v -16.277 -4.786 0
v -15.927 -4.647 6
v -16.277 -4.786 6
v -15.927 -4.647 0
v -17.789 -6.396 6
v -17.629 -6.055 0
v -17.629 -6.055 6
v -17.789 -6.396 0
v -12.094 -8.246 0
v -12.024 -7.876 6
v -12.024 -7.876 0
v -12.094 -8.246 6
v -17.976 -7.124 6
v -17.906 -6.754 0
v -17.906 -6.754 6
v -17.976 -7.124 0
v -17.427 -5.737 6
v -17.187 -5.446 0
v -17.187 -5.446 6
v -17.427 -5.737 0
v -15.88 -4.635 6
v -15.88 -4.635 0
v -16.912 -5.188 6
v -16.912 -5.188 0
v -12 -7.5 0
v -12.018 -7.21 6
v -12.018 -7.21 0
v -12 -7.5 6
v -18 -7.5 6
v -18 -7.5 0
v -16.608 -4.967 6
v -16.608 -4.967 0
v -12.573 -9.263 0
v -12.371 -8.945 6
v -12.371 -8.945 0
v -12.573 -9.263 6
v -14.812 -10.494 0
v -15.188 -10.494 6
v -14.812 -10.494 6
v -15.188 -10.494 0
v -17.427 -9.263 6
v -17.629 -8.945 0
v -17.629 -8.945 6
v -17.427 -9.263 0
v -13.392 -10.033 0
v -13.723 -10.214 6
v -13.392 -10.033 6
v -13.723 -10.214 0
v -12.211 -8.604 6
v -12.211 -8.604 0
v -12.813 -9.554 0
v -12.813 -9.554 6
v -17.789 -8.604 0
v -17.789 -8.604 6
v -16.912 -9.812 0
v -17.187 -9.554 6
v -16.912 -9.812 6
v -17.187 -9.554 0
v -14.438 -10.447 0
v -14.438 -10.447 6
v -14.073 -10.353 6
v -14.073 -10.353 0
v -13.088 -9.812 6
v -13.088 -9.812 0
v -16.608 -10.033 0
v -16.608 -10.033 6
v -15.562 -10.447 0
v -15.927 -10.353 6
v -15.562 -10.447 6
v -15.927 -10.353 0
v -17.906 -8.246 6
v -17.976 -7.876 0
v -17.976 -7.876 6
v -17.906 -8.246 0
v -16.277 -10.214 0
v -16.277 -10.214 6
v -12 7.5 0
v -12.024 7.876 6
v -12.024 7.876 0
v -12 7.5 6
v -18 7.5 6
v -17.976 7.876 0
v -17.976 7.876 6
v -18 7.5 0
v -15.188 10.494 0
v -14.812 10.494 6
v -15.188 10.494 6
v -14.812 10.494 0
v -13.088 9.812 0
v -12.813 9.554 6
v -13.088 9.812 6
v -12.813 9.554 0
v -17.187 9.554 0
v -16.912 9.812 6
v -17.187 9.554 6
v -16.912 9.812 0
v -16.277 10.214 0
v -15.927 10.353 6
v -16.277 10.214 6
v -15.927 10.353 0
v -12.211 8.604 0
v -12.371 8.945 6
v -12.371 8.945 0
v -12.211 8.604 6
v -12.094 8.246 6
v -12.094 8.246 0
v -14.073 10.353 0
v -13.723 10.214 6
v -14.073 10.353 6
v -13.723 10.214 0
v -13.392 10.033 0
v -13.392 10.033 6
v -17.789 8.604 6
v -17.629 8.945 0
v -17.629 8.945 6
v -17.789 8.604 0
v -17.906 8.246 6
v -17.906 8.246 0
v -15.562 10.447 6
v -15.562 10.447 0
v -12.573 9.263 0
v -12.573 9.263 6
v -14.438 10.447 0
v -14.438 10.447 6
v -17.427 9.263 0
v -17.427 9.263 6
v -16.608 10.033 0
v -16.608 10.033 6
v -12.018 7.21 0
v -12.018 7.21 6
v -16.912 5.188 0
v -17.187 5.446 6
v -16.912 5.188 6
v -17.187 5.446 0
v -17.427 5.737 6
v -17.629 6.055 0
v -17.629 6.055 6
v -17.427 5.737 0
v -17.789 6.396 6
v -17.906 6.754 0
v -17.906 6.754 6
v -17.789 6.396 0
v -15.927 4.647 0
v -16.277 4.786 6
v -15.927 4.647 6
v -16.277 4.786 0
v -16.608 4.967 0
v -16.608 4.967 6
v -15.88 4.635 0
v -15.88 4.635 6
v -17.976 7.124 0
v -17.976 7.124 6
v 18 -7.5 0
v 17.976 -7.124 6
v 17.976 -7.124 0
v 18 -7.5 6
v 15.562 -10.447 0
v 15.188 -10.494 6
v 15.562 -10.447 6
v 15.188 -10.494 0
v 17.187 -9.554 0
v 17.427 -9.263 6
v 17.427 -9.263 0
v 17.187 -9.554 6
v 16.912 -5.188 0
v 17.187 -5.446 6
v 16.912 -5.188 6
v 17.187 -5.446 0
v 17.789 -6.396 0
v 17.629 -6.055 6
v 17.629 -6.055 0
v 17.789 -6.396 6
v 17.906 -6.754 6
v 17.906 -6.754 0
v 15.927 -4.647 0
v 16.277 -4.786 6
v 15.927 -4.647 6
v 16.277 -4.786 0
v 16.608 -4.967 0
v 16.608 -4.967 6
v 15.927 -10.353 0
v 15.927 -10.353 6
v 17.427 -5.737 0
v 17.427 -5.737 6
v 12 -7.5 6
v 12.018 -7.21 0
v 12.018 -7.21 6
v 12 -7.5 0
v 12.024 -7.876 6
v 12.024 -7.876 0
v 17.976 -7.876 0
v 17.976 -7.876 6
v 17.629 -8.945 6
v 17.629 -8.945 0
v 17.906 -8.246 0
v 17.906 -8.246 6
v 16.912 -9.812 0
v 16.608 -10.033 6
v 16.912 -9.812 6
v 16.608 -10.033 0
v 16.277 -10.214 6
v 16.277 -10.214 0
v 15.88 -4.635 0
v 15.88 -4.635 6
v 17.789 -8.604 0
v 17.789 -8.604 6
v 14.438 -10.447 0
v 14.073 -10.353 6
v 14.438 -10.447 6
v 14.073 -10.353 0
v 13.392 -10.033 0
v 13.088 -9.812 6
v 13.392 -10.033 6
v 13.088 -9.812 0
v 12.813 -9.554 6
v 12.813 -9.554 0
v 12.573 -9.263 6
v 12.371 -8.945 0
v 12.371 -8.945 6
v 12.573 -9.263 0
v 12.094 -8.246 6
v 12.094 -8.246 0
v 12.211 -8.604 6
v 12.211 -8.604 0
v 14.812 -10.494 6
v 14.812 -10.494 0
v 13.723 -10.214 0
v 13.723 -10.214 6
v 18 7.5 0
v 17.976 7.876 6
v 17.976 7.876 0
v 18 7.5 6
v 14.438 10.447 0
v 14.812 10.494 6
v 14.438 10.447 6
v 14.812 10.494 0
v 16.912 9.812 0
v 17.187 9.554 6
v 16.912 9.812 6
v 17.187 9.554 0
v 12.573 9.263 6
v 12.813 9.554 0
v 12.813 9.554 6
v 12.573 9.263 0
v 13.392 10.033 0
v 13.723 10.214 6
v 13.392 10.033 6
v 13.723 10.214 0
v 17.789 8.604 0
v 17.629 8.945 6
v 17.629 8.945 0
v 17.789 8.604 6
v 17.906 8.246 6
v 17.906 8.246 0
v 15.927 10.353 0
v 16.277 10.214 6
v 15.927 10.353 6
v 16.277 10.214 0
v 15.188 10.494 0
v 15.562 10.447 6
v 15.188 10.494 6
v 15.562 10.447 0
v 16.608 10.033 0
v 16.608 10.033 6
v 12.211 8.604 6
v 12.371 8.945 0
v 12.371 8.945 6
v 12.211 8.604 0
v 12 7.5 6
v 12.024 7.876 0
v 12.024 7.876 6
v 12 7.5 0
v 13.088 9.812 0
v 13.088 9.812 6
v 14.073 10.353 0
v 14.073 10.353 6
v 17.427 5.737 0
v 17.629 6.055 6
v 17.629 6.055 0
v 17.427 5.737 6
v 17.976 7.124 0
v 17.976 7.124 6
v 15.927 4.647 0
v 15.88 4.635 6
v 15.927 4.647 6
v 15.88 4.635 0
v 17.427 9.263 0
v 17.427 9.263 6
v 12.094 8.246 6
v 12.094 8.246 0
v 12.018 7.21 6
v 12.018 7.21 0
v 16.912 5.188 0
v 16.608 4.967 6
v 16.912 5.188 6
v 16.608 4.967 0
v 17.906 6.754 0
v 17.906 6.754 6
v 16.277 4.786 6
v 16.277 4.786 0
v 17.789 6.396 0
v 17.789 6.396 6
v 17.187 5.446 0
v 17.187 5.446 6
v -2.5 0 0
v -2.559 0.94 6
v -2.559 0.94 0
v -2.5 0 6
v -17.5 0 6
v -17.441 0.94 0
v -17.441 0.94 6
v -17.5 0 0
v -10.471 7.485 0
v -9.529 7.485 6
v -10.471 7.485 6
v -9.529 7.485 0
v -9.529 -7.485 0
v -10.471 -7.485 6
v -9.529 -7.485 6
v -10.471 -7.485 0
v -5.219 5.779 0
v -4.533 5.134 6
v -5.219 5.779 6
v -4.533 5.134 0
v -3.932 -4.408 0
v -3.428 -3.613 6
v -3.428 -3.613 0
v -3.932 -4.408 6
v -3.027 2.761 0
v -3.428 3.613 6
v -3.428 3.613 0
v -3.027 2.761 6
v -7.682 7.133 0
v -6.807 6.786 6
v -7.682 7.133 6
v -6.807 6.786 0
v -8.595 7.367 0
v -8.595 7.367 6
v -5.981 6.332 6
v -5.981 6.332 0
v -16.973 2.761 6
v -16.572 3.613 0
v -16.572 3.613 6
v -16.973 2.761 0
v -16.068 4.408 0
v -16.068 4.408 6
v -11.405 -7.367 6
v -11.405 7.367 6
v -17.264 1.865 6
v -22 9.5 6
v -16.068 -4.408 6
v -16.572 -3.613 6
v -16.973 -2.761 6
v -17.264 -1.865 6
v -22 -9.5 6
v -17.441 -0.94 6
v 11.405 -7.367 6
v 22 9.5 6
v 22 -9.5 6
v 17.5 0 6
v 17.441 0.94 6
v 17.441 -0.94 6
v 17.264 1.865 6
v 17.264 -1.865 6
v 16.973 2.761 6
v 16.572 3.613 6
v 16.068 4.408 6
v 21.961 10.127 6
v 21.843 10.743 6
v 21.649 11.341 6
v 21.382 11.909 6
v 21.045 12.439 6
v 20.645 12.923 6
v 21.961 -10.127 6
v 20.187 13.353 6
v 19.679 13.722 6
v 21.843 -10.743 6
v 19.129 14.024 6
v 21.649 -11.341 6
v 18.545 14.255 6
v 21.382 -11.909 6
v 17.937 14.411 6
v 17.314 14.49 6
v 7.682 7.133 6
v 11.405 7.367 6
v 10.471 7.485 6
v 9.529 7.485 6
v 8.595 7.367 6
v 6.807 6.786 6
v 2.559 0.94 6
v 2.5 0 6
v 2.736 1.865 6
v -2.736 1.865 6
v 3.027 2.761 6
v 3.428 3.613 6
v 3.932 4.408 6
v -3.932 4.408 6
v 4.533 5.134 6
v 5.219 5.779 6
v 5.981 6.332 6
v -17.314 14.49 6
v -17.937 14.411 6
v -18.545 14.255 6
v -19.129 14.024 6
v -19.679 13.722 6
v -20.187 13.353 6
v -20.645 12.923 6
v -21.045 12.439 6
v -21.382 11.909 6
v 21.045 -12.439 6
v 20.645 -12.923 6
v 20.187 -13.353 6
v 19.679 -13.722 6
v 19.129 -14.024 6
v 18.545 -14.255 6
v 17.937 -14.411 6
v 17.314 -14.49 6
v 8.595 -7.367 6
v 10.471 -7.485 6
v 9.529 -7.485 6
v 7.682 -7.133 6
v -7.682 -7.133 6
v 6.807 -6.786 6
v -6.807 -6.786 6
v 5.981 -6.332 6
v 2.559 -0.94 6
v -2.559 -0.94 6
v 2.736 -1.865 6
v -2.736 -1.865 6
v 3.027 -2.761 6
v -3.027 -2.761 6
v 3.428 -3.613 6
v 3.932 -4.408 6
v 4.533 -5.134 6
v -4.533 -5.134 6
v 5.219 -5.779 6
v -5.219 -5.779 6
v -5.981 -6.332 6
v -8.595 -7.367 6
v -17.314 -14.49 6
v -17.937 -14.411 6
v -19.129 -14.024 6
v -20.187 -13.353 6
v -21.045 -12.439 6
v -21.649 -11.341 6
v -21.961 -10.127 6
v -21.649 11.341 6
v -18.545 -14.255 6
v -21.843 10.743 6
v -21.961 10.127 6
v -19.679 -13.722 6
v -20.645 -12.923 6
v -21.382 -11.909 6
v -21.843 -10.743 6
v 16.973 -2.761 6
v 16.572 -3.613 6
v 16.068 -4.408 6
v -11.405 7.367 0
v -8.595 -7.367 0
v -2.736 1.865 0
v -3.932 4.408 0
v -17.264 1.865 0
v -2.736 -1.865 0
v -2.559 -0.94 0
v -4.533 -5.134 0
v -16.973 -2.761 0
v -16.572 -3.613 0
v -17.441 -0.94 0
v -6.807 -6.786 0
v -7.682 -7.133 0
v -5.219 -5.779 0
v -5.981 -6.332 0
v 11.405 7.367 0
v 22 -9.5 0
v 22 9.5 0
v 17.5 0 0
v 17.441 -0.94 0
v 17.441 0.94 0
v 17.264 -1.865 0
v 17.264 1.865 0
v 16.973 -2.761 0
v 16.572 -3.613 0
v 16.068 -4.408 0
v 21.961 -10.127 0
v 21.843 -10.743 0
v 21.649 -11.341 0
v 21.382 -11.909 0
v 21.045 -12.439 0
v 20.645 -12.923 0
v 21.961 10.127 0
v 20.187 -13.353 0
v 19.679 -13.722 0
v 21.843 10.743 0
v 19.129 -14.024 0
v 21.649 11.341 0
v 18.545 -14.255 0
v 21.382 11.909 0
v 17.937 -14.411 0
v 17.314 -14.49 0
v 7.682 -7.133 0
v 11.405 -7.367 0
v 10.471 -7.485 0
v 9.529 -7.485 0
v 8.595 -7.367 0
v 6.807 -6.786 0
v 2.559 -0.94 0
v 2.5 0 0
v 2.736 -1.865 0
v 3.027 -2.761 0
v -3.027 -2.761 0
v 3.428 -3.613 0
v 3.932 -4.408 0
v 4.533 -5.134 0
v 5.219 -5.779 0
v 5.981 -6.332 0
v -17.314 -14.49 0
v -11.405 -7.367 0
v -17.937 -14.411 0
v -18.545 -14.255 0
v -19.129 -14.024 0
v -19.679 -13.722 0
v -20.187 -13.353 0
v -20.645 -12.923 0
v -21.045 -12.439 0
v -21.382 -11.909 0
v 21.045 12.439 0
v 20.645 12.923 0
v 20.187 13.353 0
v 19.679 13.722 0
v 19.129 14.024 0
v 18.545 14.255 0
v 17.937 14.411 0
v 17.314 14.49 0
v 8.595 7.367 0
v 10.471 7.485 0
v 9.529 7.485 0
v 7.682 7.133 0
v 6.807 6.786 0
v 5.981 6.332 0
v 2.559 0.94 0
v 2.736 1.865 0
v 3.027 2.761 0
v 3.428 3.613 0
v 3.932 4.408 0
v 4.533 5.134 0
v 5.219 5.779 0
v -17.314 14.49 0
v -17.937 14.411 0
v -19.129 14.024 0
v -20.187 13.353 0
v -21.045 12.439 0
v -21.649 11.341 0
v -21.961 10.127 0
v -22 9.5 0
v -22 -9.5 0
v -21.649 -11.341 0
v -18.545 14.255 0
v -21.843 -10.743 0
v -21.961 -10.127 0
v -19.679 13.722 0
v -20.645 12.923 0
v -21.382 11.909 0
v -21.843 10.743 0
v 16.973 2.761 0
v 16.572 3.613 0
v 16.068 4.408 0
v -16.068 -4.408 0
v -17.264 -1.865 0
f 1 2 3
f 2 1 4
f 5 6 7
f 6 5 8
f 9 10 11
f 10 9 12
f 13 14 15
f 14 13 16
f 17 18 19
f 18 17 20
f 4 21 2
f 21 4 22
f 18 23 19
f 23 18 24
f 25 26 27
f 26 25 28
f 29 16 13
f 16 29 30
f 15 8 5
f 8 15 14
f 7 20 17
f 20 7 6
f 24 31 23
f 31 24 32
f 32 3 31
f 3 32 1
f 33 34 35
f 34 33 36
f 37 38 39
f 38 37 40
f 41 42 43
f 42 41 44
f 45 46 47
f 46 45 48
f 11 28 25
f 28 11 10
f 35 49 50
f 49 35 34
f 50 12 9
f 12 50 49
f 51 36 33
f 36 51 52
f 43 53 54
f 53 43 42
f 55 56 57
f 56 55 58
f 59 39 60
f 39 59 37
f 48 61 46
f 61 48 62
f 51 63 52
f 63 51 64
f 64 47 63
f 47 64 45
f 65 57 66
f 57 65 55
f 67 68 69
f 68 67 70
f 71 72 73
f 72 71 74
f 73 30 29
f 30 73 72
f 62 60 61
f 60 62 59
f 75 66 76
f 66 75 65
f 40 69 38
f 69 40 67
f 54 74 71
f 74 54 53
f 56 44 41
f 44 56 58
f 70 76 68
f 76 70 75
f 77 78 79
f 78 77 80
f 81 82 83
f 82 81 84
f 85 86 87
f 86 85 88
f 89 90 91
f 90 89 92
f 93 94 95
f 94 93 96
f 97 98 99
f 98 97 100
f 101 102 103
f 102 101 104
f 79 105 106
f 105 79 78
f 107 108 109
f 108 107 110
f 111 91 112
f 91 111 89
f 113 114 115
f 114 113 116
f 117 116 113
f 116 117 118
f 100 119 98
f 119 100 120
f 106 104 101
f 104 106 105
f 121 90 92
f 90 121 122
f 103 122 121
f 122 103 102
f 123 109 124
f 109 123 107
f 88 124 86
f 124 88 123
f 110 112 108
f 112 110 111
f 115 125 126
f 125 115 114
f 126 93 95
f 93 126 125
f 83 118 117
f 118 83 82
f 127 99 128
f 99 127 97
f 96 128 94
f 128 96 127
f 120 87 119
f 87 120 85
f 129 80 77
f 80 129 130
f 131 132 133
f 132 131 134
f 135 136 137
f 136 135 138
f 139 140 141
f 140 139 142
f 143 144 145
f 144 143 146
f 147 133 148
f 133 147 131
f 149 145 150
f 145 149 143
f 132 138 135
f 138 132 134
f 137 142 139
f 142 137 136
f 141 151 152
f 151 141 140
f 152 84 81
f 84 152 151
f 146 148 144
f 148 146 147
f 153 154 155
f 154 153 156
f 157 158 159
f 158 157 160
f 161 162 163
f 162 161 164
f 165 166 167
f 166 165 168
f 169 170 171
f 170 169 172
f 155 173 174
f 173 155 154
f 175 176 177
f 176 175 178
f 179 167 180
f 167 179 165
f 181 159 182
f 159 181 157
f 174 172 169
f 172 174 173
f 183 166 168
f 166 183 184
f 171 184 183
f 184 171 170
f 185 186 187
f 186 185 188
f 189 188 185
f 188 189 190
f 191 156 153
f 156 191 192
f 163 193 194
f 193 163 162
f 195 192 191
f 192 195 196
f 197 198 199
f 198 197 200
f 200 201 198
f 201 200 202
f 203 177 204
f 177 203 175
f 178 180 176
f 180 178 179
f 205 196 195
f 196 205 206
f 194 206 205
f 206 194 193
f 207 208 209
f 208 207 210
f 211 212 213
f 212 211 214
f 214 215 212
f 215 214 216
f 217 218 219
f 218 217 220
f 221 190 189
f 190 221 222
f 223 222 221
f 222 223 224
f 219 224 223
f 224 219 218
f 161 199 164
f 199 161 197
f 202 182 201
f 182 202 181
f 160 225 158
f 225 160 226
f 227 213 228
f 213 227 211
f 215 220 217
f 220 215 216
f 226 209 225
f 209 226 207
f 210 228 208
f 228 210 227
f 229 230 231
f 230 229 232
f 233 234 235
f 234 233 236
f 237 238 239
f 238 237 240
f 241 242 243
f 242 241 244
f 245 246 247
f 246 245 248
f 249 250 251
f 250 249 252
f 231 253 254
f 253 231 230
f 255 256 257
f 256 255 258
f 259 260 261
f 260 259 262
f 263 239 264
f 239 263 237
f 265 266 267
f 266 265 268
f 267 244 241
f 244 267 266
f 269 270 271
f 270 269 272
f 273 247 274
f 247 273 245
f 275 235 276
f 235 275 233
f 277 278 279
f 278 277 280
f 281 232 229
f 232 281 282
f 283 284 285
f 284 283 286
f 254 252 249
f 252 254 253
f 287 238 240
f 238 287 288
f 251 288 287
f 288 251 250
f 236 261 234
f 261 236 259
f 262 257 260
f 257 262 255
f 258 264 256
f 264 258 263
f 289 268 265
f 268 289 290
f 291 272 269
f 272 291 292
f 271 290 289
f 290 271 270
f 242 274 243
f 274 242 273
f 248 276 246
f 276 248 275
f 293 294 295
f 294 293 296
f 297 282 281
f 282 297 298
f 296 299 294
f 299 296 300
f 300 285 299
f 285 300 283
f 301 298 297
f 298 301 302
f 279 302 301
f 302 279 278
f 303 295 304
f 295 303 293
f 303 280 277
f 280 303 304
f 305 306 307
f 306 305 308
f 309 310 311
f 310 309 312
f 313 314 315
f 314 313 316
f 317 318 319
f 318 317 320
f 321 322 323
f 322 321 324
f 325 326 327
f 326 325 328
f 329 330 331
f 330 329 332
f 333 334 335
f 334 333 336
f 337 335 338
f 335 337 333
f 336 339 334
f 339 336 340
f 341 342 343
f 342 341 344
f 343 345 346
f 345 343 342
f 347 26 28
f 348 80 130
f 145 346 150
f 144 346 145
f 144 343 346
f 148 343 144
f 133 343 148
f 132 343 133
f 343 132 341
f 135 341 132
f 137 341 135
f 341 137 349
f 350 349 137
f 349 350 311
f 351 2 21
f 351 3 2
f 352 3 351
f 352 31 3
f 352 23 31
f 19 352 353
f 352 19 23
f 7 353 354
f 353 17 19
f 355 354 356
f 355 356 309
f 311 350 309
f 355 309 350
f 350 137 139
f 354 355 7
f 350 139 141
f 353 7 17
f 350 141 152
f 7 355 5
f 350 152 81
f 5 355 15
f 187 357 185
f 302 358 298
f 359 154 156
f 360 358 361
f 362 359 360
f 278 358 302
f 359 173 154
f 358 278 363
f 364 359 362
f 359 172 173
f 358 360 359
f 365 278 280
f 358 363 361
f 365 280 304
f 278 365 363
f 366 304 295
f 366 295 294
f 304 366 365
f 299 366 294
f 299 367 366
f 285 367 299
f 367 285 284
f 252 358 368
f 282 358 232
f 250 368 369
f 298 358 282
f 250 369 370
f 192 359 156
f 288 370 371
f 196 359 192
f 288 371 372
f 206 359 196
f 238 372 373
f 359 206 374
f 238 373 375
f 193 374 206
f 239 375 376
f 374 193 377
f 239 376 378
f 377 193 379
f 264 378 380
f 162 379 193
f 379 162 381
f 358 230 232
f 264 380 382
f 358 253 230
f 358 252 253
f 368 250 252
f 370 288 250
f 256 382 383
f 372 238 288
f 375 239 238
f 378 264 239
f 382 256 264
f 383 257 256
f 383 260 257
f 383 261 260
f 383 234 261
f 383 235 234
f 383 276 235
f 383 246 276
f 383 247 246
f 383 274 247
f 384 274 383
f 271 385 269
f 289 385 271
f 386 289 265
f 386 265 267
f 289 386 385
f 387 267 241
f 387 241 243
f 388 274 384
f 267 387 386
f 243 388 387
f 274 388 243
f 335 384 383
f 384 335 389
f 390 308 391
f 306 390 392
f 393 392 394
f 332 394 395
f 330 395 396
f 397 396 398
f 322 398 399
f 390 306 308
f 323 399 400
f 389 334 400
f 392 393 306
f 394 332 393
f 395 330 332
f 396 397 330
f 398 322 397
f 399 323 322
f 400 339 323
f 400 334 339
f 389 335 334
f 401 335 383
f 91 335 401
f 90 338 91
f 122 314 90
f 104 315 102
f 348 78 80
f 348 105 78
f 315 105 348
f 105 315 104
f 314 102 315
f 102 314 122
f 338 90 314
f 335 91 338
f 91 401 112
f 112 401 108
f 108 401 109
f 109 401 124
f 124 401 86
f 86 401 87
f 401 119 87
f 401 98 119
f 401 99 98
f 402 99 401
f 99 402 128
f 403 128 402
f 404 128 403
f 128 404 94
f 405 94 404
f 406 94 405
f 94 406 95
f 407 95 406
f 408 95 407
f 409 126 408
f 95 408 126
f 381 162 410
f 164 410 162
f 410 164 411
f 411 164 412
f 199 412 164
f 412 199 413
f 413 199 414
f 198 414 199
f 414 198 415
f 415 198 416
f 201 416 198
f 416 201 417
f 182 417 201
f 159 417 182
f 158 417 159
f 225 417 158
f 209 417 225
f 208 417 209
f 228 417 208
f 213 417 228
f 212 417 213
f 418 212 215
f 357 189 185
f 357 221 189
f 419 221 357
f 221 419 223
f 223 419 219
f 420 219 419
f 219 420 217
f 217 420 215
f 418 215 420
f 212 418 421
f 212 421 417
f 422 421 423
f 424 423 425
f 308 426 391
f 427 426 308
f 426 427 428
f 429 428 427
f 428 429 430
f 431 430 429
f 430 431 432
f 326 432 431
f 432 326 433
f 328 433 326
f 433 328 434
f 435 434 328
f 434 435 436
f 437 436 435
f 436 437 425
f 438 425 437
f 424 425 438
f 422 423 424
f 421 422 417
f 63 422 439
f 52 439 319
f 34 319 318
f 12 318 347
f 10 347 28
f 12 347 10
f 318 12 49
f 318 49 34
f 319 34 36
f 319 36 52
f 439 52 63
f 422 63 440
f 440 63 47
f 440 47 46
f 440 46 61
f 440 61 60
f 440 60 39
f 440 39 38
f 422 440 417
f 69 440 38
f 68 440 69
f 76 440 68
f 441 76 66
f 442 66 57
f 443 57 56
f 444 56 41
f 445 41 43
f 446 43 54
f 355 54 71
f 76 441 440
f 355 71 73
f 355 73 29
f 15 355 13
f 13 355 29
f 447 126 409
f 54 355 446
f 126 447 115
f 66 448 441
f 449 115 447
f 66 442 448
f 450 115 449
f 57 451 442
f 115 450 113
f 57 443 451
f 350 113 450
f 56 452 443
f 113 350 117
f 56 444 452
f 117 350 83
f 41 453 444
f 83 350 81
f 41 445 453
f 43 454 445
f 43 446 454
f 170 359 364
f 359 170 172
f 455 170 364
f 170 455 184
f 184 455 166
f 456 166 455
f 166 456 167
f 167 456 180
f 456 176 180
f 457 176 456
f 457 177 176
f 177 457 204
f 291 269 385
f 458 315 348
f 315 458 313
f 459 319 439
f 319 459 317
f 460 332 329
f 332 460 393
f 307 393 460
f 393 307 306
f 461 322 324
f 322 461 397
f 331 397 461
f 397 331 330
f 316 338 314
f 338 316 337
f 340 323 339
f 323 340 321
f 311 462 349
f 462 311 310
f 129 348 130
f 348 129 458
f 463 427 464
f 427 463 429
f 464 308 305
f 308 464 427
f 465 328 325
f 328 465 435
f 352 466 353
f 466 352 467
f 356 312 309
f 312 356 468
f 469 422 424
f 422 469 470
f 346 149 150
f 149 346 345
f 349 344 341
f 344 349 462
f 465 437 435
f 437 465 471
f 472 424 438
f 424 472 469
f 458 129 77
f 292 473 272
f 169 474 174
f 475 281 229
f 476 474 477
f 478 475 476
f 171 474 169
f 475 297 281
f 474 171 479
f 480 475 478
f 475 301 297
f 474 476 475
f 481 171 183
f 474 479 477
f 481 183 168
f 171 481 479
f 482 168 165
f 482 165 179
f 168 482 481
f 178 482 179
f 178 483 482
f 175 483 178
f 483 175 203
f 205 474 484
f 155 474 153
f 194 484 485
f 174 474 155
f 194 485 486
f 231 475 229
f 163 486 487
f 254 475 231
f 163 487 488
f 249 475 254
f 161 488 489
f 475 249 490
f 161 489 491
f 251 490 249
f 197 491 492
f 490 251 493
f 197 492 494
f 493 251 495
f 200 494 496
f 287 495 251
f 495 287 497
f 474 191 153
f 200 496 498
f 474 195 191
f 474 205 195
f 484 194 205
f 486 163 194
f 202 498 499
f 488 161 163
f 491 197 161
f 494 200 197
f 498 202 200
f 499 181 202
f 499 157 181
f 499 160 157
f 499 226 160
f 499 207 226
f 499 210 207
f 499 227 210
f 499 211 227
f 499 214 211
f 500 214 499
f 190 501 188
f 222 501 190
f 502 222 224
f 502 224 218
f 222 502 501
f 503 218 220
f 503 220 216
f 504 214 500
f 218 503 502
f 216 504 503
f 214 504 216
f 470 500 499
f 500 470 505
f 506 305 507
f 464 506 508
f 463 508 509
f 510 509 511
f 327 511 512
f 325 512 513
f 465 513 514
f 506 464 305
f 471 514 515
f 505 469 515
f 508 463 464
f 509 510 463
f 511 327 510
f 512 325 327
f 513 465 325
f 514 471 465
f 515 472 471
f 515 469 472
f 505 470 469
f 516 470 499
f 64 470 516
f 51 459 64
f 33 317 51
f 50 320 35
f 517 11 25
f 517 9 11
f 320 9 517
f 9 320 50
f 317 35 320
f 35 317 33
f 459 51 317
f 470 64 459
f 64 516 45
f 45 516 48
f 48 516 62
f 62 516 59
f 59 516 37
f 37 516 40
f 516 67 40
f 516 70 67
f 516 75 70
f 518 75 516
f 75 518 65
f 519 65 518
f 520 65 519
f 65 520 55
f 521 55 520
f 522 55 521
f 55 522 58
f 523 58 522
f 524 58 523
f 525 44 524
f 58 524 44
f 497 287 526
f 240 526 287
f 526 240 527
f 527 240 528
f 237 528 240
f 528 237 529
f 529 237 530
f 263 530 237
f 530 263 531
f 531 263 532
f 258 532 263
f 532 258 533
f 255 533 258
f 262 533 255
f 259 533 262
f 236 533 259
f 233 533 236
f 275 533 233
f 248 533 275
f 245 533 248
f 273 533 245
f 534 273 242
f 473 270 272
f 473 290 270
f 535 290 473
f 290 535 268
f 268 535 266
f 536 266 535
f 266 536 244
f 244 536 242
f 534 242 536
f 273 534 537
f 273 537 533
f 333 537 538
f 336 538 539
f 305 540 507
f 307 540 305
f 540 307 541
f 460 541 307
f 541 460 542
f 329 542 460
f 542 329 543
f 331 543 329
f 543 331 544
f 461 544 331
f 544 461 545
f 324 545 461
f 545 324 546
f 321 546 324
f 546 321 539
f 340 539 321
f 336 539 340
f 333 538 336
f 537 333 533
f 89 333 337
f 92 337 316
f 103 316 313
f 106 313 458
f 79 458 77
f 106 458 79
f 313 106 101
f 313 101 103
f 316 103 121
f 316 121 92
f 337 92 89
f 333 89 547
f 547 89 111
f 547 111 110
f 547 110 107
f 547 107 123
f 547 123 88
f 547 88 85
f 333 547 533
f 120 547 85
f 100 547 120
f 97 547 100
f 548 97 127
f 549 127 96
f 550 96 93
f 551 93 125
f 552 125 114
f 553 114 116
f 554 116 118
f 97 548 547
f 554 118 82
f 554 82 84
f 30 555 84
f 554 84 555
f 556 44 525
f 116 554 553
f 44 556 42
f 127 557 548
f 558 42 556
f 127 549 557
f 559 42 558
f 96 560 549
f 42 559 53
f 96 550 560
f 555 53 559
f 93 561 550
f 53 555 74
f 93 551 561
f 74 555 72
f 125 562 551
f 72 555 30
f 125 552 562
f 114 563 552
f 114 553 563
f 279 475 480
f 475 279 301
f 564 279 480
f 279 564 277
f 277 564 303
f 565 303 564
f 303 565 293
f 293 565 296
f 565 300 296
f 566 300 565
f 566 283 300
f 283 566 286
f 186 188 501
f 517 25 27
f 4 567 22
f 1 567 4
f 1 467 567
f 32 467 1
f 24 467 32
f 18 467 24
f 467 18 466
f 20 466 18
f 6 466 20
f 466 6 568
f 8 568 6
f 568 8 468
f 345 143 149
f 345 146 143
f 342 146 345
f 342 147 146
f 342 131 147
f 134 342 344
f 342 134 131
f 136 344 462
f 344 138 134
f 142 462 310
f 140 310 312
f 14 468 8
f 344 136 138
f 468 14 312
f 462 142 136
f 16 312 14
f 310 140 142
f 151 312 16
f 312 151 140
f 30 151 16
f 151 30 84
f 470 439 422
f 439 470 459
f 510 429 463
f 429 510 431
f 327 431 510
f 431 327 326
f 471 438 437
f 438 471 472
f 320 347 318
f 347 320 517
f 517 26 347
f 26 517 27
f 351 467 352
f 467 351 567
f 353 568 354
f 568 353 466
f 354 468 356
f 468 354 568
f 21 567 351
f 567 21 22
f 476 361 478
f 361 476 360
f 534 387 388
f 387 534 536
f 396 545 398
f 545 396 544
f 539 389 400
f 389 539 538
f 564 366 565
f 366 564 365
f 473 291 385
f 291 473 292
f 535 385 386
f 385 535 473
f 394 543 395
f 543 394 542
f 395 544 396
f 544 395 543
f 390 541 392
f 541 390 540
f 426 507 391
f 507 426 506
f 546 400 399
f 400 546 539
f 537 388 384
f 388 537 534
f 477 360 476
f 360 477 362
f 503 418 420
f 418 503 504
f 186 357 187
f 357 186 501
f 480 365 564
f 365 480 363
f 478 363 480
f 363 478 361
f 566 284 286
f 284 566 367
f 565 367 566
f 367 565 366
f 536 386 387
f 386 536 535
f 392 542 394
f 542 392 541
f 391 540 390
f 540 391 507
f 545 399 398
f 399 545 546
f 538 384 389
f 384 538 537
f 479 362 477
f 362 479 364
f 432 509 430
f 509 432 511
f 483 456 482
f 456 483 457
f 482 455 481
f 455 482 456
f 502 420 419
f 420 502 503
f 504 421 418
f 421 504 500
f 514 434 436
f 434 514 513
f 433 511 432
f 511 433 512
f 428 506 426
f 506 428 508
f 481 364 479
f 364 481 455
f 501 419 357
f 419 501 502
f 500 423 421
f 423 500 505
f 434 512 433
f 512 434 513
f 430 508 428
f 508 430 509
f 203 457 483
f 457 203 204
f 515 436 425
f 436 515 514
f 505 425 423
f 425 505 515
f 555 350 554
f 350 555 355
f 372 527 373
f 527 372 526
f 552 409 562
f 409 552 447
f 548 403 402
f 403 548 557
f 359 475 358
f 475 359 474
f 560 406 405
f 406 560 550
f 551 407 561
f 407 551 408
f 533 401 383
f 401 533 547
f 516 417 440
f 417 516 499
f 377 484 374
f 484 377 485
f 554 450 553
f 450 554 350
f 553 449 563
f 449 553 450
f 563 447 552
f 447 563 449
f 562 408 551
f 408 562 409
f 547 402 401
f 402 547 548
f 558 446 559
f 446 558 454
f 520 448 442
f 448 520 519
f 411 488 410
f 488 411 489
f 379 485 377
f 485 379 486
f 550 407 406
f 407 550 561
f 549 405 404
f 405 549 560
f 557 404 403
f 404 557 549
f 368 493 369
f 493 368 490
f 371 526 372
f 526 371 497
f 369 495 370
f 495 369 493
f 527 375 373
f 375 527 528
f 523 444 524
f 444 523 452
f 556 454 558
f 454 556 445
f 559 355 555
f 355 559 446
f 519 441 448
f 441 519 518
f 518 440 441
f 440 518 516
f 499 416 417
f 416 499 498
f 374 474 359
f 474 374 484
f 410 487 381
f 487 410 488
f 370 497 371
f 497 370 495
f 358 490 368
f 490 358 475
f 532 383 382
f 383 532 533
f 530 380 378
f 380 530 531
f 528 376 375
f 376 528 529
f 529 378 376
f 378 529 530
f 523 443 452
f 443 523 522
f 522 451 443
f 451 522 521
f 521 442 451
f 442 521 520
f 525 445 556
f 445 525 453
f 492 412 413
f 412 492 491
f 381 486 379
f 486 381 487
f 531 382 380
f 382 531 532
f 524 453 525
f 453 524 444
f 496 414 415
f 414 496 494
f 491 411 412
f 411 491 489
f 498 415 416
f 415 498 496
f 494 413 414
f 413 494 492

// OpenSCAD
$fn = 50;


difference() {
	union() {
		hull() {
			translate(v = [-17.0000000000, 9.5000000000, 0]) {
				cylinder(h = 6, r = 5);
			}
			translate(v = [17.0000000000, 9.5000000000, 0]) {
				cylinder(h = 6, r = 5);
			}
			translate(v = [-17.0000000000, -9.5000000000, 0]) {
				cylinder(h = 6, r = 5);
			}
			translate(v = [17.0000000000, -9.5000000000, 0]) {
				cylinder(h = 6, r = 5);
			}
		}
	}
	union() {
		#translate(v = [-15.0000000000, -7.5000000000, -100.0000000000]) {
			cylinder(h = 200, r = 3.0000000000);
		}
		#translate(v = [-15.0000000000, 7.5000000000, -100.0000000000]) {
			cylinder(h = 200, r = 3.0000000000);
		}
		#translate(v = [15.0000000000, -7.5000000000, -100.0000000000]) {
			cylinder(h = 200, r = 3.0000000000);
		}
		#translate(v = [15.0000000000, 7.5000000000, -100.0000000000]) {
			cylinder(h = 200, r = 3.0000000000);
		}
		#translate(v = [-10.0000000000, 0, 0]) {
			cylinder(h = 6, r = 7.5000000000);
		}
		#translate(v = [10.0000000000, 0, 0]) {
			cylinder(h = 6, r = 7.5000000000);
		}
	}
}
